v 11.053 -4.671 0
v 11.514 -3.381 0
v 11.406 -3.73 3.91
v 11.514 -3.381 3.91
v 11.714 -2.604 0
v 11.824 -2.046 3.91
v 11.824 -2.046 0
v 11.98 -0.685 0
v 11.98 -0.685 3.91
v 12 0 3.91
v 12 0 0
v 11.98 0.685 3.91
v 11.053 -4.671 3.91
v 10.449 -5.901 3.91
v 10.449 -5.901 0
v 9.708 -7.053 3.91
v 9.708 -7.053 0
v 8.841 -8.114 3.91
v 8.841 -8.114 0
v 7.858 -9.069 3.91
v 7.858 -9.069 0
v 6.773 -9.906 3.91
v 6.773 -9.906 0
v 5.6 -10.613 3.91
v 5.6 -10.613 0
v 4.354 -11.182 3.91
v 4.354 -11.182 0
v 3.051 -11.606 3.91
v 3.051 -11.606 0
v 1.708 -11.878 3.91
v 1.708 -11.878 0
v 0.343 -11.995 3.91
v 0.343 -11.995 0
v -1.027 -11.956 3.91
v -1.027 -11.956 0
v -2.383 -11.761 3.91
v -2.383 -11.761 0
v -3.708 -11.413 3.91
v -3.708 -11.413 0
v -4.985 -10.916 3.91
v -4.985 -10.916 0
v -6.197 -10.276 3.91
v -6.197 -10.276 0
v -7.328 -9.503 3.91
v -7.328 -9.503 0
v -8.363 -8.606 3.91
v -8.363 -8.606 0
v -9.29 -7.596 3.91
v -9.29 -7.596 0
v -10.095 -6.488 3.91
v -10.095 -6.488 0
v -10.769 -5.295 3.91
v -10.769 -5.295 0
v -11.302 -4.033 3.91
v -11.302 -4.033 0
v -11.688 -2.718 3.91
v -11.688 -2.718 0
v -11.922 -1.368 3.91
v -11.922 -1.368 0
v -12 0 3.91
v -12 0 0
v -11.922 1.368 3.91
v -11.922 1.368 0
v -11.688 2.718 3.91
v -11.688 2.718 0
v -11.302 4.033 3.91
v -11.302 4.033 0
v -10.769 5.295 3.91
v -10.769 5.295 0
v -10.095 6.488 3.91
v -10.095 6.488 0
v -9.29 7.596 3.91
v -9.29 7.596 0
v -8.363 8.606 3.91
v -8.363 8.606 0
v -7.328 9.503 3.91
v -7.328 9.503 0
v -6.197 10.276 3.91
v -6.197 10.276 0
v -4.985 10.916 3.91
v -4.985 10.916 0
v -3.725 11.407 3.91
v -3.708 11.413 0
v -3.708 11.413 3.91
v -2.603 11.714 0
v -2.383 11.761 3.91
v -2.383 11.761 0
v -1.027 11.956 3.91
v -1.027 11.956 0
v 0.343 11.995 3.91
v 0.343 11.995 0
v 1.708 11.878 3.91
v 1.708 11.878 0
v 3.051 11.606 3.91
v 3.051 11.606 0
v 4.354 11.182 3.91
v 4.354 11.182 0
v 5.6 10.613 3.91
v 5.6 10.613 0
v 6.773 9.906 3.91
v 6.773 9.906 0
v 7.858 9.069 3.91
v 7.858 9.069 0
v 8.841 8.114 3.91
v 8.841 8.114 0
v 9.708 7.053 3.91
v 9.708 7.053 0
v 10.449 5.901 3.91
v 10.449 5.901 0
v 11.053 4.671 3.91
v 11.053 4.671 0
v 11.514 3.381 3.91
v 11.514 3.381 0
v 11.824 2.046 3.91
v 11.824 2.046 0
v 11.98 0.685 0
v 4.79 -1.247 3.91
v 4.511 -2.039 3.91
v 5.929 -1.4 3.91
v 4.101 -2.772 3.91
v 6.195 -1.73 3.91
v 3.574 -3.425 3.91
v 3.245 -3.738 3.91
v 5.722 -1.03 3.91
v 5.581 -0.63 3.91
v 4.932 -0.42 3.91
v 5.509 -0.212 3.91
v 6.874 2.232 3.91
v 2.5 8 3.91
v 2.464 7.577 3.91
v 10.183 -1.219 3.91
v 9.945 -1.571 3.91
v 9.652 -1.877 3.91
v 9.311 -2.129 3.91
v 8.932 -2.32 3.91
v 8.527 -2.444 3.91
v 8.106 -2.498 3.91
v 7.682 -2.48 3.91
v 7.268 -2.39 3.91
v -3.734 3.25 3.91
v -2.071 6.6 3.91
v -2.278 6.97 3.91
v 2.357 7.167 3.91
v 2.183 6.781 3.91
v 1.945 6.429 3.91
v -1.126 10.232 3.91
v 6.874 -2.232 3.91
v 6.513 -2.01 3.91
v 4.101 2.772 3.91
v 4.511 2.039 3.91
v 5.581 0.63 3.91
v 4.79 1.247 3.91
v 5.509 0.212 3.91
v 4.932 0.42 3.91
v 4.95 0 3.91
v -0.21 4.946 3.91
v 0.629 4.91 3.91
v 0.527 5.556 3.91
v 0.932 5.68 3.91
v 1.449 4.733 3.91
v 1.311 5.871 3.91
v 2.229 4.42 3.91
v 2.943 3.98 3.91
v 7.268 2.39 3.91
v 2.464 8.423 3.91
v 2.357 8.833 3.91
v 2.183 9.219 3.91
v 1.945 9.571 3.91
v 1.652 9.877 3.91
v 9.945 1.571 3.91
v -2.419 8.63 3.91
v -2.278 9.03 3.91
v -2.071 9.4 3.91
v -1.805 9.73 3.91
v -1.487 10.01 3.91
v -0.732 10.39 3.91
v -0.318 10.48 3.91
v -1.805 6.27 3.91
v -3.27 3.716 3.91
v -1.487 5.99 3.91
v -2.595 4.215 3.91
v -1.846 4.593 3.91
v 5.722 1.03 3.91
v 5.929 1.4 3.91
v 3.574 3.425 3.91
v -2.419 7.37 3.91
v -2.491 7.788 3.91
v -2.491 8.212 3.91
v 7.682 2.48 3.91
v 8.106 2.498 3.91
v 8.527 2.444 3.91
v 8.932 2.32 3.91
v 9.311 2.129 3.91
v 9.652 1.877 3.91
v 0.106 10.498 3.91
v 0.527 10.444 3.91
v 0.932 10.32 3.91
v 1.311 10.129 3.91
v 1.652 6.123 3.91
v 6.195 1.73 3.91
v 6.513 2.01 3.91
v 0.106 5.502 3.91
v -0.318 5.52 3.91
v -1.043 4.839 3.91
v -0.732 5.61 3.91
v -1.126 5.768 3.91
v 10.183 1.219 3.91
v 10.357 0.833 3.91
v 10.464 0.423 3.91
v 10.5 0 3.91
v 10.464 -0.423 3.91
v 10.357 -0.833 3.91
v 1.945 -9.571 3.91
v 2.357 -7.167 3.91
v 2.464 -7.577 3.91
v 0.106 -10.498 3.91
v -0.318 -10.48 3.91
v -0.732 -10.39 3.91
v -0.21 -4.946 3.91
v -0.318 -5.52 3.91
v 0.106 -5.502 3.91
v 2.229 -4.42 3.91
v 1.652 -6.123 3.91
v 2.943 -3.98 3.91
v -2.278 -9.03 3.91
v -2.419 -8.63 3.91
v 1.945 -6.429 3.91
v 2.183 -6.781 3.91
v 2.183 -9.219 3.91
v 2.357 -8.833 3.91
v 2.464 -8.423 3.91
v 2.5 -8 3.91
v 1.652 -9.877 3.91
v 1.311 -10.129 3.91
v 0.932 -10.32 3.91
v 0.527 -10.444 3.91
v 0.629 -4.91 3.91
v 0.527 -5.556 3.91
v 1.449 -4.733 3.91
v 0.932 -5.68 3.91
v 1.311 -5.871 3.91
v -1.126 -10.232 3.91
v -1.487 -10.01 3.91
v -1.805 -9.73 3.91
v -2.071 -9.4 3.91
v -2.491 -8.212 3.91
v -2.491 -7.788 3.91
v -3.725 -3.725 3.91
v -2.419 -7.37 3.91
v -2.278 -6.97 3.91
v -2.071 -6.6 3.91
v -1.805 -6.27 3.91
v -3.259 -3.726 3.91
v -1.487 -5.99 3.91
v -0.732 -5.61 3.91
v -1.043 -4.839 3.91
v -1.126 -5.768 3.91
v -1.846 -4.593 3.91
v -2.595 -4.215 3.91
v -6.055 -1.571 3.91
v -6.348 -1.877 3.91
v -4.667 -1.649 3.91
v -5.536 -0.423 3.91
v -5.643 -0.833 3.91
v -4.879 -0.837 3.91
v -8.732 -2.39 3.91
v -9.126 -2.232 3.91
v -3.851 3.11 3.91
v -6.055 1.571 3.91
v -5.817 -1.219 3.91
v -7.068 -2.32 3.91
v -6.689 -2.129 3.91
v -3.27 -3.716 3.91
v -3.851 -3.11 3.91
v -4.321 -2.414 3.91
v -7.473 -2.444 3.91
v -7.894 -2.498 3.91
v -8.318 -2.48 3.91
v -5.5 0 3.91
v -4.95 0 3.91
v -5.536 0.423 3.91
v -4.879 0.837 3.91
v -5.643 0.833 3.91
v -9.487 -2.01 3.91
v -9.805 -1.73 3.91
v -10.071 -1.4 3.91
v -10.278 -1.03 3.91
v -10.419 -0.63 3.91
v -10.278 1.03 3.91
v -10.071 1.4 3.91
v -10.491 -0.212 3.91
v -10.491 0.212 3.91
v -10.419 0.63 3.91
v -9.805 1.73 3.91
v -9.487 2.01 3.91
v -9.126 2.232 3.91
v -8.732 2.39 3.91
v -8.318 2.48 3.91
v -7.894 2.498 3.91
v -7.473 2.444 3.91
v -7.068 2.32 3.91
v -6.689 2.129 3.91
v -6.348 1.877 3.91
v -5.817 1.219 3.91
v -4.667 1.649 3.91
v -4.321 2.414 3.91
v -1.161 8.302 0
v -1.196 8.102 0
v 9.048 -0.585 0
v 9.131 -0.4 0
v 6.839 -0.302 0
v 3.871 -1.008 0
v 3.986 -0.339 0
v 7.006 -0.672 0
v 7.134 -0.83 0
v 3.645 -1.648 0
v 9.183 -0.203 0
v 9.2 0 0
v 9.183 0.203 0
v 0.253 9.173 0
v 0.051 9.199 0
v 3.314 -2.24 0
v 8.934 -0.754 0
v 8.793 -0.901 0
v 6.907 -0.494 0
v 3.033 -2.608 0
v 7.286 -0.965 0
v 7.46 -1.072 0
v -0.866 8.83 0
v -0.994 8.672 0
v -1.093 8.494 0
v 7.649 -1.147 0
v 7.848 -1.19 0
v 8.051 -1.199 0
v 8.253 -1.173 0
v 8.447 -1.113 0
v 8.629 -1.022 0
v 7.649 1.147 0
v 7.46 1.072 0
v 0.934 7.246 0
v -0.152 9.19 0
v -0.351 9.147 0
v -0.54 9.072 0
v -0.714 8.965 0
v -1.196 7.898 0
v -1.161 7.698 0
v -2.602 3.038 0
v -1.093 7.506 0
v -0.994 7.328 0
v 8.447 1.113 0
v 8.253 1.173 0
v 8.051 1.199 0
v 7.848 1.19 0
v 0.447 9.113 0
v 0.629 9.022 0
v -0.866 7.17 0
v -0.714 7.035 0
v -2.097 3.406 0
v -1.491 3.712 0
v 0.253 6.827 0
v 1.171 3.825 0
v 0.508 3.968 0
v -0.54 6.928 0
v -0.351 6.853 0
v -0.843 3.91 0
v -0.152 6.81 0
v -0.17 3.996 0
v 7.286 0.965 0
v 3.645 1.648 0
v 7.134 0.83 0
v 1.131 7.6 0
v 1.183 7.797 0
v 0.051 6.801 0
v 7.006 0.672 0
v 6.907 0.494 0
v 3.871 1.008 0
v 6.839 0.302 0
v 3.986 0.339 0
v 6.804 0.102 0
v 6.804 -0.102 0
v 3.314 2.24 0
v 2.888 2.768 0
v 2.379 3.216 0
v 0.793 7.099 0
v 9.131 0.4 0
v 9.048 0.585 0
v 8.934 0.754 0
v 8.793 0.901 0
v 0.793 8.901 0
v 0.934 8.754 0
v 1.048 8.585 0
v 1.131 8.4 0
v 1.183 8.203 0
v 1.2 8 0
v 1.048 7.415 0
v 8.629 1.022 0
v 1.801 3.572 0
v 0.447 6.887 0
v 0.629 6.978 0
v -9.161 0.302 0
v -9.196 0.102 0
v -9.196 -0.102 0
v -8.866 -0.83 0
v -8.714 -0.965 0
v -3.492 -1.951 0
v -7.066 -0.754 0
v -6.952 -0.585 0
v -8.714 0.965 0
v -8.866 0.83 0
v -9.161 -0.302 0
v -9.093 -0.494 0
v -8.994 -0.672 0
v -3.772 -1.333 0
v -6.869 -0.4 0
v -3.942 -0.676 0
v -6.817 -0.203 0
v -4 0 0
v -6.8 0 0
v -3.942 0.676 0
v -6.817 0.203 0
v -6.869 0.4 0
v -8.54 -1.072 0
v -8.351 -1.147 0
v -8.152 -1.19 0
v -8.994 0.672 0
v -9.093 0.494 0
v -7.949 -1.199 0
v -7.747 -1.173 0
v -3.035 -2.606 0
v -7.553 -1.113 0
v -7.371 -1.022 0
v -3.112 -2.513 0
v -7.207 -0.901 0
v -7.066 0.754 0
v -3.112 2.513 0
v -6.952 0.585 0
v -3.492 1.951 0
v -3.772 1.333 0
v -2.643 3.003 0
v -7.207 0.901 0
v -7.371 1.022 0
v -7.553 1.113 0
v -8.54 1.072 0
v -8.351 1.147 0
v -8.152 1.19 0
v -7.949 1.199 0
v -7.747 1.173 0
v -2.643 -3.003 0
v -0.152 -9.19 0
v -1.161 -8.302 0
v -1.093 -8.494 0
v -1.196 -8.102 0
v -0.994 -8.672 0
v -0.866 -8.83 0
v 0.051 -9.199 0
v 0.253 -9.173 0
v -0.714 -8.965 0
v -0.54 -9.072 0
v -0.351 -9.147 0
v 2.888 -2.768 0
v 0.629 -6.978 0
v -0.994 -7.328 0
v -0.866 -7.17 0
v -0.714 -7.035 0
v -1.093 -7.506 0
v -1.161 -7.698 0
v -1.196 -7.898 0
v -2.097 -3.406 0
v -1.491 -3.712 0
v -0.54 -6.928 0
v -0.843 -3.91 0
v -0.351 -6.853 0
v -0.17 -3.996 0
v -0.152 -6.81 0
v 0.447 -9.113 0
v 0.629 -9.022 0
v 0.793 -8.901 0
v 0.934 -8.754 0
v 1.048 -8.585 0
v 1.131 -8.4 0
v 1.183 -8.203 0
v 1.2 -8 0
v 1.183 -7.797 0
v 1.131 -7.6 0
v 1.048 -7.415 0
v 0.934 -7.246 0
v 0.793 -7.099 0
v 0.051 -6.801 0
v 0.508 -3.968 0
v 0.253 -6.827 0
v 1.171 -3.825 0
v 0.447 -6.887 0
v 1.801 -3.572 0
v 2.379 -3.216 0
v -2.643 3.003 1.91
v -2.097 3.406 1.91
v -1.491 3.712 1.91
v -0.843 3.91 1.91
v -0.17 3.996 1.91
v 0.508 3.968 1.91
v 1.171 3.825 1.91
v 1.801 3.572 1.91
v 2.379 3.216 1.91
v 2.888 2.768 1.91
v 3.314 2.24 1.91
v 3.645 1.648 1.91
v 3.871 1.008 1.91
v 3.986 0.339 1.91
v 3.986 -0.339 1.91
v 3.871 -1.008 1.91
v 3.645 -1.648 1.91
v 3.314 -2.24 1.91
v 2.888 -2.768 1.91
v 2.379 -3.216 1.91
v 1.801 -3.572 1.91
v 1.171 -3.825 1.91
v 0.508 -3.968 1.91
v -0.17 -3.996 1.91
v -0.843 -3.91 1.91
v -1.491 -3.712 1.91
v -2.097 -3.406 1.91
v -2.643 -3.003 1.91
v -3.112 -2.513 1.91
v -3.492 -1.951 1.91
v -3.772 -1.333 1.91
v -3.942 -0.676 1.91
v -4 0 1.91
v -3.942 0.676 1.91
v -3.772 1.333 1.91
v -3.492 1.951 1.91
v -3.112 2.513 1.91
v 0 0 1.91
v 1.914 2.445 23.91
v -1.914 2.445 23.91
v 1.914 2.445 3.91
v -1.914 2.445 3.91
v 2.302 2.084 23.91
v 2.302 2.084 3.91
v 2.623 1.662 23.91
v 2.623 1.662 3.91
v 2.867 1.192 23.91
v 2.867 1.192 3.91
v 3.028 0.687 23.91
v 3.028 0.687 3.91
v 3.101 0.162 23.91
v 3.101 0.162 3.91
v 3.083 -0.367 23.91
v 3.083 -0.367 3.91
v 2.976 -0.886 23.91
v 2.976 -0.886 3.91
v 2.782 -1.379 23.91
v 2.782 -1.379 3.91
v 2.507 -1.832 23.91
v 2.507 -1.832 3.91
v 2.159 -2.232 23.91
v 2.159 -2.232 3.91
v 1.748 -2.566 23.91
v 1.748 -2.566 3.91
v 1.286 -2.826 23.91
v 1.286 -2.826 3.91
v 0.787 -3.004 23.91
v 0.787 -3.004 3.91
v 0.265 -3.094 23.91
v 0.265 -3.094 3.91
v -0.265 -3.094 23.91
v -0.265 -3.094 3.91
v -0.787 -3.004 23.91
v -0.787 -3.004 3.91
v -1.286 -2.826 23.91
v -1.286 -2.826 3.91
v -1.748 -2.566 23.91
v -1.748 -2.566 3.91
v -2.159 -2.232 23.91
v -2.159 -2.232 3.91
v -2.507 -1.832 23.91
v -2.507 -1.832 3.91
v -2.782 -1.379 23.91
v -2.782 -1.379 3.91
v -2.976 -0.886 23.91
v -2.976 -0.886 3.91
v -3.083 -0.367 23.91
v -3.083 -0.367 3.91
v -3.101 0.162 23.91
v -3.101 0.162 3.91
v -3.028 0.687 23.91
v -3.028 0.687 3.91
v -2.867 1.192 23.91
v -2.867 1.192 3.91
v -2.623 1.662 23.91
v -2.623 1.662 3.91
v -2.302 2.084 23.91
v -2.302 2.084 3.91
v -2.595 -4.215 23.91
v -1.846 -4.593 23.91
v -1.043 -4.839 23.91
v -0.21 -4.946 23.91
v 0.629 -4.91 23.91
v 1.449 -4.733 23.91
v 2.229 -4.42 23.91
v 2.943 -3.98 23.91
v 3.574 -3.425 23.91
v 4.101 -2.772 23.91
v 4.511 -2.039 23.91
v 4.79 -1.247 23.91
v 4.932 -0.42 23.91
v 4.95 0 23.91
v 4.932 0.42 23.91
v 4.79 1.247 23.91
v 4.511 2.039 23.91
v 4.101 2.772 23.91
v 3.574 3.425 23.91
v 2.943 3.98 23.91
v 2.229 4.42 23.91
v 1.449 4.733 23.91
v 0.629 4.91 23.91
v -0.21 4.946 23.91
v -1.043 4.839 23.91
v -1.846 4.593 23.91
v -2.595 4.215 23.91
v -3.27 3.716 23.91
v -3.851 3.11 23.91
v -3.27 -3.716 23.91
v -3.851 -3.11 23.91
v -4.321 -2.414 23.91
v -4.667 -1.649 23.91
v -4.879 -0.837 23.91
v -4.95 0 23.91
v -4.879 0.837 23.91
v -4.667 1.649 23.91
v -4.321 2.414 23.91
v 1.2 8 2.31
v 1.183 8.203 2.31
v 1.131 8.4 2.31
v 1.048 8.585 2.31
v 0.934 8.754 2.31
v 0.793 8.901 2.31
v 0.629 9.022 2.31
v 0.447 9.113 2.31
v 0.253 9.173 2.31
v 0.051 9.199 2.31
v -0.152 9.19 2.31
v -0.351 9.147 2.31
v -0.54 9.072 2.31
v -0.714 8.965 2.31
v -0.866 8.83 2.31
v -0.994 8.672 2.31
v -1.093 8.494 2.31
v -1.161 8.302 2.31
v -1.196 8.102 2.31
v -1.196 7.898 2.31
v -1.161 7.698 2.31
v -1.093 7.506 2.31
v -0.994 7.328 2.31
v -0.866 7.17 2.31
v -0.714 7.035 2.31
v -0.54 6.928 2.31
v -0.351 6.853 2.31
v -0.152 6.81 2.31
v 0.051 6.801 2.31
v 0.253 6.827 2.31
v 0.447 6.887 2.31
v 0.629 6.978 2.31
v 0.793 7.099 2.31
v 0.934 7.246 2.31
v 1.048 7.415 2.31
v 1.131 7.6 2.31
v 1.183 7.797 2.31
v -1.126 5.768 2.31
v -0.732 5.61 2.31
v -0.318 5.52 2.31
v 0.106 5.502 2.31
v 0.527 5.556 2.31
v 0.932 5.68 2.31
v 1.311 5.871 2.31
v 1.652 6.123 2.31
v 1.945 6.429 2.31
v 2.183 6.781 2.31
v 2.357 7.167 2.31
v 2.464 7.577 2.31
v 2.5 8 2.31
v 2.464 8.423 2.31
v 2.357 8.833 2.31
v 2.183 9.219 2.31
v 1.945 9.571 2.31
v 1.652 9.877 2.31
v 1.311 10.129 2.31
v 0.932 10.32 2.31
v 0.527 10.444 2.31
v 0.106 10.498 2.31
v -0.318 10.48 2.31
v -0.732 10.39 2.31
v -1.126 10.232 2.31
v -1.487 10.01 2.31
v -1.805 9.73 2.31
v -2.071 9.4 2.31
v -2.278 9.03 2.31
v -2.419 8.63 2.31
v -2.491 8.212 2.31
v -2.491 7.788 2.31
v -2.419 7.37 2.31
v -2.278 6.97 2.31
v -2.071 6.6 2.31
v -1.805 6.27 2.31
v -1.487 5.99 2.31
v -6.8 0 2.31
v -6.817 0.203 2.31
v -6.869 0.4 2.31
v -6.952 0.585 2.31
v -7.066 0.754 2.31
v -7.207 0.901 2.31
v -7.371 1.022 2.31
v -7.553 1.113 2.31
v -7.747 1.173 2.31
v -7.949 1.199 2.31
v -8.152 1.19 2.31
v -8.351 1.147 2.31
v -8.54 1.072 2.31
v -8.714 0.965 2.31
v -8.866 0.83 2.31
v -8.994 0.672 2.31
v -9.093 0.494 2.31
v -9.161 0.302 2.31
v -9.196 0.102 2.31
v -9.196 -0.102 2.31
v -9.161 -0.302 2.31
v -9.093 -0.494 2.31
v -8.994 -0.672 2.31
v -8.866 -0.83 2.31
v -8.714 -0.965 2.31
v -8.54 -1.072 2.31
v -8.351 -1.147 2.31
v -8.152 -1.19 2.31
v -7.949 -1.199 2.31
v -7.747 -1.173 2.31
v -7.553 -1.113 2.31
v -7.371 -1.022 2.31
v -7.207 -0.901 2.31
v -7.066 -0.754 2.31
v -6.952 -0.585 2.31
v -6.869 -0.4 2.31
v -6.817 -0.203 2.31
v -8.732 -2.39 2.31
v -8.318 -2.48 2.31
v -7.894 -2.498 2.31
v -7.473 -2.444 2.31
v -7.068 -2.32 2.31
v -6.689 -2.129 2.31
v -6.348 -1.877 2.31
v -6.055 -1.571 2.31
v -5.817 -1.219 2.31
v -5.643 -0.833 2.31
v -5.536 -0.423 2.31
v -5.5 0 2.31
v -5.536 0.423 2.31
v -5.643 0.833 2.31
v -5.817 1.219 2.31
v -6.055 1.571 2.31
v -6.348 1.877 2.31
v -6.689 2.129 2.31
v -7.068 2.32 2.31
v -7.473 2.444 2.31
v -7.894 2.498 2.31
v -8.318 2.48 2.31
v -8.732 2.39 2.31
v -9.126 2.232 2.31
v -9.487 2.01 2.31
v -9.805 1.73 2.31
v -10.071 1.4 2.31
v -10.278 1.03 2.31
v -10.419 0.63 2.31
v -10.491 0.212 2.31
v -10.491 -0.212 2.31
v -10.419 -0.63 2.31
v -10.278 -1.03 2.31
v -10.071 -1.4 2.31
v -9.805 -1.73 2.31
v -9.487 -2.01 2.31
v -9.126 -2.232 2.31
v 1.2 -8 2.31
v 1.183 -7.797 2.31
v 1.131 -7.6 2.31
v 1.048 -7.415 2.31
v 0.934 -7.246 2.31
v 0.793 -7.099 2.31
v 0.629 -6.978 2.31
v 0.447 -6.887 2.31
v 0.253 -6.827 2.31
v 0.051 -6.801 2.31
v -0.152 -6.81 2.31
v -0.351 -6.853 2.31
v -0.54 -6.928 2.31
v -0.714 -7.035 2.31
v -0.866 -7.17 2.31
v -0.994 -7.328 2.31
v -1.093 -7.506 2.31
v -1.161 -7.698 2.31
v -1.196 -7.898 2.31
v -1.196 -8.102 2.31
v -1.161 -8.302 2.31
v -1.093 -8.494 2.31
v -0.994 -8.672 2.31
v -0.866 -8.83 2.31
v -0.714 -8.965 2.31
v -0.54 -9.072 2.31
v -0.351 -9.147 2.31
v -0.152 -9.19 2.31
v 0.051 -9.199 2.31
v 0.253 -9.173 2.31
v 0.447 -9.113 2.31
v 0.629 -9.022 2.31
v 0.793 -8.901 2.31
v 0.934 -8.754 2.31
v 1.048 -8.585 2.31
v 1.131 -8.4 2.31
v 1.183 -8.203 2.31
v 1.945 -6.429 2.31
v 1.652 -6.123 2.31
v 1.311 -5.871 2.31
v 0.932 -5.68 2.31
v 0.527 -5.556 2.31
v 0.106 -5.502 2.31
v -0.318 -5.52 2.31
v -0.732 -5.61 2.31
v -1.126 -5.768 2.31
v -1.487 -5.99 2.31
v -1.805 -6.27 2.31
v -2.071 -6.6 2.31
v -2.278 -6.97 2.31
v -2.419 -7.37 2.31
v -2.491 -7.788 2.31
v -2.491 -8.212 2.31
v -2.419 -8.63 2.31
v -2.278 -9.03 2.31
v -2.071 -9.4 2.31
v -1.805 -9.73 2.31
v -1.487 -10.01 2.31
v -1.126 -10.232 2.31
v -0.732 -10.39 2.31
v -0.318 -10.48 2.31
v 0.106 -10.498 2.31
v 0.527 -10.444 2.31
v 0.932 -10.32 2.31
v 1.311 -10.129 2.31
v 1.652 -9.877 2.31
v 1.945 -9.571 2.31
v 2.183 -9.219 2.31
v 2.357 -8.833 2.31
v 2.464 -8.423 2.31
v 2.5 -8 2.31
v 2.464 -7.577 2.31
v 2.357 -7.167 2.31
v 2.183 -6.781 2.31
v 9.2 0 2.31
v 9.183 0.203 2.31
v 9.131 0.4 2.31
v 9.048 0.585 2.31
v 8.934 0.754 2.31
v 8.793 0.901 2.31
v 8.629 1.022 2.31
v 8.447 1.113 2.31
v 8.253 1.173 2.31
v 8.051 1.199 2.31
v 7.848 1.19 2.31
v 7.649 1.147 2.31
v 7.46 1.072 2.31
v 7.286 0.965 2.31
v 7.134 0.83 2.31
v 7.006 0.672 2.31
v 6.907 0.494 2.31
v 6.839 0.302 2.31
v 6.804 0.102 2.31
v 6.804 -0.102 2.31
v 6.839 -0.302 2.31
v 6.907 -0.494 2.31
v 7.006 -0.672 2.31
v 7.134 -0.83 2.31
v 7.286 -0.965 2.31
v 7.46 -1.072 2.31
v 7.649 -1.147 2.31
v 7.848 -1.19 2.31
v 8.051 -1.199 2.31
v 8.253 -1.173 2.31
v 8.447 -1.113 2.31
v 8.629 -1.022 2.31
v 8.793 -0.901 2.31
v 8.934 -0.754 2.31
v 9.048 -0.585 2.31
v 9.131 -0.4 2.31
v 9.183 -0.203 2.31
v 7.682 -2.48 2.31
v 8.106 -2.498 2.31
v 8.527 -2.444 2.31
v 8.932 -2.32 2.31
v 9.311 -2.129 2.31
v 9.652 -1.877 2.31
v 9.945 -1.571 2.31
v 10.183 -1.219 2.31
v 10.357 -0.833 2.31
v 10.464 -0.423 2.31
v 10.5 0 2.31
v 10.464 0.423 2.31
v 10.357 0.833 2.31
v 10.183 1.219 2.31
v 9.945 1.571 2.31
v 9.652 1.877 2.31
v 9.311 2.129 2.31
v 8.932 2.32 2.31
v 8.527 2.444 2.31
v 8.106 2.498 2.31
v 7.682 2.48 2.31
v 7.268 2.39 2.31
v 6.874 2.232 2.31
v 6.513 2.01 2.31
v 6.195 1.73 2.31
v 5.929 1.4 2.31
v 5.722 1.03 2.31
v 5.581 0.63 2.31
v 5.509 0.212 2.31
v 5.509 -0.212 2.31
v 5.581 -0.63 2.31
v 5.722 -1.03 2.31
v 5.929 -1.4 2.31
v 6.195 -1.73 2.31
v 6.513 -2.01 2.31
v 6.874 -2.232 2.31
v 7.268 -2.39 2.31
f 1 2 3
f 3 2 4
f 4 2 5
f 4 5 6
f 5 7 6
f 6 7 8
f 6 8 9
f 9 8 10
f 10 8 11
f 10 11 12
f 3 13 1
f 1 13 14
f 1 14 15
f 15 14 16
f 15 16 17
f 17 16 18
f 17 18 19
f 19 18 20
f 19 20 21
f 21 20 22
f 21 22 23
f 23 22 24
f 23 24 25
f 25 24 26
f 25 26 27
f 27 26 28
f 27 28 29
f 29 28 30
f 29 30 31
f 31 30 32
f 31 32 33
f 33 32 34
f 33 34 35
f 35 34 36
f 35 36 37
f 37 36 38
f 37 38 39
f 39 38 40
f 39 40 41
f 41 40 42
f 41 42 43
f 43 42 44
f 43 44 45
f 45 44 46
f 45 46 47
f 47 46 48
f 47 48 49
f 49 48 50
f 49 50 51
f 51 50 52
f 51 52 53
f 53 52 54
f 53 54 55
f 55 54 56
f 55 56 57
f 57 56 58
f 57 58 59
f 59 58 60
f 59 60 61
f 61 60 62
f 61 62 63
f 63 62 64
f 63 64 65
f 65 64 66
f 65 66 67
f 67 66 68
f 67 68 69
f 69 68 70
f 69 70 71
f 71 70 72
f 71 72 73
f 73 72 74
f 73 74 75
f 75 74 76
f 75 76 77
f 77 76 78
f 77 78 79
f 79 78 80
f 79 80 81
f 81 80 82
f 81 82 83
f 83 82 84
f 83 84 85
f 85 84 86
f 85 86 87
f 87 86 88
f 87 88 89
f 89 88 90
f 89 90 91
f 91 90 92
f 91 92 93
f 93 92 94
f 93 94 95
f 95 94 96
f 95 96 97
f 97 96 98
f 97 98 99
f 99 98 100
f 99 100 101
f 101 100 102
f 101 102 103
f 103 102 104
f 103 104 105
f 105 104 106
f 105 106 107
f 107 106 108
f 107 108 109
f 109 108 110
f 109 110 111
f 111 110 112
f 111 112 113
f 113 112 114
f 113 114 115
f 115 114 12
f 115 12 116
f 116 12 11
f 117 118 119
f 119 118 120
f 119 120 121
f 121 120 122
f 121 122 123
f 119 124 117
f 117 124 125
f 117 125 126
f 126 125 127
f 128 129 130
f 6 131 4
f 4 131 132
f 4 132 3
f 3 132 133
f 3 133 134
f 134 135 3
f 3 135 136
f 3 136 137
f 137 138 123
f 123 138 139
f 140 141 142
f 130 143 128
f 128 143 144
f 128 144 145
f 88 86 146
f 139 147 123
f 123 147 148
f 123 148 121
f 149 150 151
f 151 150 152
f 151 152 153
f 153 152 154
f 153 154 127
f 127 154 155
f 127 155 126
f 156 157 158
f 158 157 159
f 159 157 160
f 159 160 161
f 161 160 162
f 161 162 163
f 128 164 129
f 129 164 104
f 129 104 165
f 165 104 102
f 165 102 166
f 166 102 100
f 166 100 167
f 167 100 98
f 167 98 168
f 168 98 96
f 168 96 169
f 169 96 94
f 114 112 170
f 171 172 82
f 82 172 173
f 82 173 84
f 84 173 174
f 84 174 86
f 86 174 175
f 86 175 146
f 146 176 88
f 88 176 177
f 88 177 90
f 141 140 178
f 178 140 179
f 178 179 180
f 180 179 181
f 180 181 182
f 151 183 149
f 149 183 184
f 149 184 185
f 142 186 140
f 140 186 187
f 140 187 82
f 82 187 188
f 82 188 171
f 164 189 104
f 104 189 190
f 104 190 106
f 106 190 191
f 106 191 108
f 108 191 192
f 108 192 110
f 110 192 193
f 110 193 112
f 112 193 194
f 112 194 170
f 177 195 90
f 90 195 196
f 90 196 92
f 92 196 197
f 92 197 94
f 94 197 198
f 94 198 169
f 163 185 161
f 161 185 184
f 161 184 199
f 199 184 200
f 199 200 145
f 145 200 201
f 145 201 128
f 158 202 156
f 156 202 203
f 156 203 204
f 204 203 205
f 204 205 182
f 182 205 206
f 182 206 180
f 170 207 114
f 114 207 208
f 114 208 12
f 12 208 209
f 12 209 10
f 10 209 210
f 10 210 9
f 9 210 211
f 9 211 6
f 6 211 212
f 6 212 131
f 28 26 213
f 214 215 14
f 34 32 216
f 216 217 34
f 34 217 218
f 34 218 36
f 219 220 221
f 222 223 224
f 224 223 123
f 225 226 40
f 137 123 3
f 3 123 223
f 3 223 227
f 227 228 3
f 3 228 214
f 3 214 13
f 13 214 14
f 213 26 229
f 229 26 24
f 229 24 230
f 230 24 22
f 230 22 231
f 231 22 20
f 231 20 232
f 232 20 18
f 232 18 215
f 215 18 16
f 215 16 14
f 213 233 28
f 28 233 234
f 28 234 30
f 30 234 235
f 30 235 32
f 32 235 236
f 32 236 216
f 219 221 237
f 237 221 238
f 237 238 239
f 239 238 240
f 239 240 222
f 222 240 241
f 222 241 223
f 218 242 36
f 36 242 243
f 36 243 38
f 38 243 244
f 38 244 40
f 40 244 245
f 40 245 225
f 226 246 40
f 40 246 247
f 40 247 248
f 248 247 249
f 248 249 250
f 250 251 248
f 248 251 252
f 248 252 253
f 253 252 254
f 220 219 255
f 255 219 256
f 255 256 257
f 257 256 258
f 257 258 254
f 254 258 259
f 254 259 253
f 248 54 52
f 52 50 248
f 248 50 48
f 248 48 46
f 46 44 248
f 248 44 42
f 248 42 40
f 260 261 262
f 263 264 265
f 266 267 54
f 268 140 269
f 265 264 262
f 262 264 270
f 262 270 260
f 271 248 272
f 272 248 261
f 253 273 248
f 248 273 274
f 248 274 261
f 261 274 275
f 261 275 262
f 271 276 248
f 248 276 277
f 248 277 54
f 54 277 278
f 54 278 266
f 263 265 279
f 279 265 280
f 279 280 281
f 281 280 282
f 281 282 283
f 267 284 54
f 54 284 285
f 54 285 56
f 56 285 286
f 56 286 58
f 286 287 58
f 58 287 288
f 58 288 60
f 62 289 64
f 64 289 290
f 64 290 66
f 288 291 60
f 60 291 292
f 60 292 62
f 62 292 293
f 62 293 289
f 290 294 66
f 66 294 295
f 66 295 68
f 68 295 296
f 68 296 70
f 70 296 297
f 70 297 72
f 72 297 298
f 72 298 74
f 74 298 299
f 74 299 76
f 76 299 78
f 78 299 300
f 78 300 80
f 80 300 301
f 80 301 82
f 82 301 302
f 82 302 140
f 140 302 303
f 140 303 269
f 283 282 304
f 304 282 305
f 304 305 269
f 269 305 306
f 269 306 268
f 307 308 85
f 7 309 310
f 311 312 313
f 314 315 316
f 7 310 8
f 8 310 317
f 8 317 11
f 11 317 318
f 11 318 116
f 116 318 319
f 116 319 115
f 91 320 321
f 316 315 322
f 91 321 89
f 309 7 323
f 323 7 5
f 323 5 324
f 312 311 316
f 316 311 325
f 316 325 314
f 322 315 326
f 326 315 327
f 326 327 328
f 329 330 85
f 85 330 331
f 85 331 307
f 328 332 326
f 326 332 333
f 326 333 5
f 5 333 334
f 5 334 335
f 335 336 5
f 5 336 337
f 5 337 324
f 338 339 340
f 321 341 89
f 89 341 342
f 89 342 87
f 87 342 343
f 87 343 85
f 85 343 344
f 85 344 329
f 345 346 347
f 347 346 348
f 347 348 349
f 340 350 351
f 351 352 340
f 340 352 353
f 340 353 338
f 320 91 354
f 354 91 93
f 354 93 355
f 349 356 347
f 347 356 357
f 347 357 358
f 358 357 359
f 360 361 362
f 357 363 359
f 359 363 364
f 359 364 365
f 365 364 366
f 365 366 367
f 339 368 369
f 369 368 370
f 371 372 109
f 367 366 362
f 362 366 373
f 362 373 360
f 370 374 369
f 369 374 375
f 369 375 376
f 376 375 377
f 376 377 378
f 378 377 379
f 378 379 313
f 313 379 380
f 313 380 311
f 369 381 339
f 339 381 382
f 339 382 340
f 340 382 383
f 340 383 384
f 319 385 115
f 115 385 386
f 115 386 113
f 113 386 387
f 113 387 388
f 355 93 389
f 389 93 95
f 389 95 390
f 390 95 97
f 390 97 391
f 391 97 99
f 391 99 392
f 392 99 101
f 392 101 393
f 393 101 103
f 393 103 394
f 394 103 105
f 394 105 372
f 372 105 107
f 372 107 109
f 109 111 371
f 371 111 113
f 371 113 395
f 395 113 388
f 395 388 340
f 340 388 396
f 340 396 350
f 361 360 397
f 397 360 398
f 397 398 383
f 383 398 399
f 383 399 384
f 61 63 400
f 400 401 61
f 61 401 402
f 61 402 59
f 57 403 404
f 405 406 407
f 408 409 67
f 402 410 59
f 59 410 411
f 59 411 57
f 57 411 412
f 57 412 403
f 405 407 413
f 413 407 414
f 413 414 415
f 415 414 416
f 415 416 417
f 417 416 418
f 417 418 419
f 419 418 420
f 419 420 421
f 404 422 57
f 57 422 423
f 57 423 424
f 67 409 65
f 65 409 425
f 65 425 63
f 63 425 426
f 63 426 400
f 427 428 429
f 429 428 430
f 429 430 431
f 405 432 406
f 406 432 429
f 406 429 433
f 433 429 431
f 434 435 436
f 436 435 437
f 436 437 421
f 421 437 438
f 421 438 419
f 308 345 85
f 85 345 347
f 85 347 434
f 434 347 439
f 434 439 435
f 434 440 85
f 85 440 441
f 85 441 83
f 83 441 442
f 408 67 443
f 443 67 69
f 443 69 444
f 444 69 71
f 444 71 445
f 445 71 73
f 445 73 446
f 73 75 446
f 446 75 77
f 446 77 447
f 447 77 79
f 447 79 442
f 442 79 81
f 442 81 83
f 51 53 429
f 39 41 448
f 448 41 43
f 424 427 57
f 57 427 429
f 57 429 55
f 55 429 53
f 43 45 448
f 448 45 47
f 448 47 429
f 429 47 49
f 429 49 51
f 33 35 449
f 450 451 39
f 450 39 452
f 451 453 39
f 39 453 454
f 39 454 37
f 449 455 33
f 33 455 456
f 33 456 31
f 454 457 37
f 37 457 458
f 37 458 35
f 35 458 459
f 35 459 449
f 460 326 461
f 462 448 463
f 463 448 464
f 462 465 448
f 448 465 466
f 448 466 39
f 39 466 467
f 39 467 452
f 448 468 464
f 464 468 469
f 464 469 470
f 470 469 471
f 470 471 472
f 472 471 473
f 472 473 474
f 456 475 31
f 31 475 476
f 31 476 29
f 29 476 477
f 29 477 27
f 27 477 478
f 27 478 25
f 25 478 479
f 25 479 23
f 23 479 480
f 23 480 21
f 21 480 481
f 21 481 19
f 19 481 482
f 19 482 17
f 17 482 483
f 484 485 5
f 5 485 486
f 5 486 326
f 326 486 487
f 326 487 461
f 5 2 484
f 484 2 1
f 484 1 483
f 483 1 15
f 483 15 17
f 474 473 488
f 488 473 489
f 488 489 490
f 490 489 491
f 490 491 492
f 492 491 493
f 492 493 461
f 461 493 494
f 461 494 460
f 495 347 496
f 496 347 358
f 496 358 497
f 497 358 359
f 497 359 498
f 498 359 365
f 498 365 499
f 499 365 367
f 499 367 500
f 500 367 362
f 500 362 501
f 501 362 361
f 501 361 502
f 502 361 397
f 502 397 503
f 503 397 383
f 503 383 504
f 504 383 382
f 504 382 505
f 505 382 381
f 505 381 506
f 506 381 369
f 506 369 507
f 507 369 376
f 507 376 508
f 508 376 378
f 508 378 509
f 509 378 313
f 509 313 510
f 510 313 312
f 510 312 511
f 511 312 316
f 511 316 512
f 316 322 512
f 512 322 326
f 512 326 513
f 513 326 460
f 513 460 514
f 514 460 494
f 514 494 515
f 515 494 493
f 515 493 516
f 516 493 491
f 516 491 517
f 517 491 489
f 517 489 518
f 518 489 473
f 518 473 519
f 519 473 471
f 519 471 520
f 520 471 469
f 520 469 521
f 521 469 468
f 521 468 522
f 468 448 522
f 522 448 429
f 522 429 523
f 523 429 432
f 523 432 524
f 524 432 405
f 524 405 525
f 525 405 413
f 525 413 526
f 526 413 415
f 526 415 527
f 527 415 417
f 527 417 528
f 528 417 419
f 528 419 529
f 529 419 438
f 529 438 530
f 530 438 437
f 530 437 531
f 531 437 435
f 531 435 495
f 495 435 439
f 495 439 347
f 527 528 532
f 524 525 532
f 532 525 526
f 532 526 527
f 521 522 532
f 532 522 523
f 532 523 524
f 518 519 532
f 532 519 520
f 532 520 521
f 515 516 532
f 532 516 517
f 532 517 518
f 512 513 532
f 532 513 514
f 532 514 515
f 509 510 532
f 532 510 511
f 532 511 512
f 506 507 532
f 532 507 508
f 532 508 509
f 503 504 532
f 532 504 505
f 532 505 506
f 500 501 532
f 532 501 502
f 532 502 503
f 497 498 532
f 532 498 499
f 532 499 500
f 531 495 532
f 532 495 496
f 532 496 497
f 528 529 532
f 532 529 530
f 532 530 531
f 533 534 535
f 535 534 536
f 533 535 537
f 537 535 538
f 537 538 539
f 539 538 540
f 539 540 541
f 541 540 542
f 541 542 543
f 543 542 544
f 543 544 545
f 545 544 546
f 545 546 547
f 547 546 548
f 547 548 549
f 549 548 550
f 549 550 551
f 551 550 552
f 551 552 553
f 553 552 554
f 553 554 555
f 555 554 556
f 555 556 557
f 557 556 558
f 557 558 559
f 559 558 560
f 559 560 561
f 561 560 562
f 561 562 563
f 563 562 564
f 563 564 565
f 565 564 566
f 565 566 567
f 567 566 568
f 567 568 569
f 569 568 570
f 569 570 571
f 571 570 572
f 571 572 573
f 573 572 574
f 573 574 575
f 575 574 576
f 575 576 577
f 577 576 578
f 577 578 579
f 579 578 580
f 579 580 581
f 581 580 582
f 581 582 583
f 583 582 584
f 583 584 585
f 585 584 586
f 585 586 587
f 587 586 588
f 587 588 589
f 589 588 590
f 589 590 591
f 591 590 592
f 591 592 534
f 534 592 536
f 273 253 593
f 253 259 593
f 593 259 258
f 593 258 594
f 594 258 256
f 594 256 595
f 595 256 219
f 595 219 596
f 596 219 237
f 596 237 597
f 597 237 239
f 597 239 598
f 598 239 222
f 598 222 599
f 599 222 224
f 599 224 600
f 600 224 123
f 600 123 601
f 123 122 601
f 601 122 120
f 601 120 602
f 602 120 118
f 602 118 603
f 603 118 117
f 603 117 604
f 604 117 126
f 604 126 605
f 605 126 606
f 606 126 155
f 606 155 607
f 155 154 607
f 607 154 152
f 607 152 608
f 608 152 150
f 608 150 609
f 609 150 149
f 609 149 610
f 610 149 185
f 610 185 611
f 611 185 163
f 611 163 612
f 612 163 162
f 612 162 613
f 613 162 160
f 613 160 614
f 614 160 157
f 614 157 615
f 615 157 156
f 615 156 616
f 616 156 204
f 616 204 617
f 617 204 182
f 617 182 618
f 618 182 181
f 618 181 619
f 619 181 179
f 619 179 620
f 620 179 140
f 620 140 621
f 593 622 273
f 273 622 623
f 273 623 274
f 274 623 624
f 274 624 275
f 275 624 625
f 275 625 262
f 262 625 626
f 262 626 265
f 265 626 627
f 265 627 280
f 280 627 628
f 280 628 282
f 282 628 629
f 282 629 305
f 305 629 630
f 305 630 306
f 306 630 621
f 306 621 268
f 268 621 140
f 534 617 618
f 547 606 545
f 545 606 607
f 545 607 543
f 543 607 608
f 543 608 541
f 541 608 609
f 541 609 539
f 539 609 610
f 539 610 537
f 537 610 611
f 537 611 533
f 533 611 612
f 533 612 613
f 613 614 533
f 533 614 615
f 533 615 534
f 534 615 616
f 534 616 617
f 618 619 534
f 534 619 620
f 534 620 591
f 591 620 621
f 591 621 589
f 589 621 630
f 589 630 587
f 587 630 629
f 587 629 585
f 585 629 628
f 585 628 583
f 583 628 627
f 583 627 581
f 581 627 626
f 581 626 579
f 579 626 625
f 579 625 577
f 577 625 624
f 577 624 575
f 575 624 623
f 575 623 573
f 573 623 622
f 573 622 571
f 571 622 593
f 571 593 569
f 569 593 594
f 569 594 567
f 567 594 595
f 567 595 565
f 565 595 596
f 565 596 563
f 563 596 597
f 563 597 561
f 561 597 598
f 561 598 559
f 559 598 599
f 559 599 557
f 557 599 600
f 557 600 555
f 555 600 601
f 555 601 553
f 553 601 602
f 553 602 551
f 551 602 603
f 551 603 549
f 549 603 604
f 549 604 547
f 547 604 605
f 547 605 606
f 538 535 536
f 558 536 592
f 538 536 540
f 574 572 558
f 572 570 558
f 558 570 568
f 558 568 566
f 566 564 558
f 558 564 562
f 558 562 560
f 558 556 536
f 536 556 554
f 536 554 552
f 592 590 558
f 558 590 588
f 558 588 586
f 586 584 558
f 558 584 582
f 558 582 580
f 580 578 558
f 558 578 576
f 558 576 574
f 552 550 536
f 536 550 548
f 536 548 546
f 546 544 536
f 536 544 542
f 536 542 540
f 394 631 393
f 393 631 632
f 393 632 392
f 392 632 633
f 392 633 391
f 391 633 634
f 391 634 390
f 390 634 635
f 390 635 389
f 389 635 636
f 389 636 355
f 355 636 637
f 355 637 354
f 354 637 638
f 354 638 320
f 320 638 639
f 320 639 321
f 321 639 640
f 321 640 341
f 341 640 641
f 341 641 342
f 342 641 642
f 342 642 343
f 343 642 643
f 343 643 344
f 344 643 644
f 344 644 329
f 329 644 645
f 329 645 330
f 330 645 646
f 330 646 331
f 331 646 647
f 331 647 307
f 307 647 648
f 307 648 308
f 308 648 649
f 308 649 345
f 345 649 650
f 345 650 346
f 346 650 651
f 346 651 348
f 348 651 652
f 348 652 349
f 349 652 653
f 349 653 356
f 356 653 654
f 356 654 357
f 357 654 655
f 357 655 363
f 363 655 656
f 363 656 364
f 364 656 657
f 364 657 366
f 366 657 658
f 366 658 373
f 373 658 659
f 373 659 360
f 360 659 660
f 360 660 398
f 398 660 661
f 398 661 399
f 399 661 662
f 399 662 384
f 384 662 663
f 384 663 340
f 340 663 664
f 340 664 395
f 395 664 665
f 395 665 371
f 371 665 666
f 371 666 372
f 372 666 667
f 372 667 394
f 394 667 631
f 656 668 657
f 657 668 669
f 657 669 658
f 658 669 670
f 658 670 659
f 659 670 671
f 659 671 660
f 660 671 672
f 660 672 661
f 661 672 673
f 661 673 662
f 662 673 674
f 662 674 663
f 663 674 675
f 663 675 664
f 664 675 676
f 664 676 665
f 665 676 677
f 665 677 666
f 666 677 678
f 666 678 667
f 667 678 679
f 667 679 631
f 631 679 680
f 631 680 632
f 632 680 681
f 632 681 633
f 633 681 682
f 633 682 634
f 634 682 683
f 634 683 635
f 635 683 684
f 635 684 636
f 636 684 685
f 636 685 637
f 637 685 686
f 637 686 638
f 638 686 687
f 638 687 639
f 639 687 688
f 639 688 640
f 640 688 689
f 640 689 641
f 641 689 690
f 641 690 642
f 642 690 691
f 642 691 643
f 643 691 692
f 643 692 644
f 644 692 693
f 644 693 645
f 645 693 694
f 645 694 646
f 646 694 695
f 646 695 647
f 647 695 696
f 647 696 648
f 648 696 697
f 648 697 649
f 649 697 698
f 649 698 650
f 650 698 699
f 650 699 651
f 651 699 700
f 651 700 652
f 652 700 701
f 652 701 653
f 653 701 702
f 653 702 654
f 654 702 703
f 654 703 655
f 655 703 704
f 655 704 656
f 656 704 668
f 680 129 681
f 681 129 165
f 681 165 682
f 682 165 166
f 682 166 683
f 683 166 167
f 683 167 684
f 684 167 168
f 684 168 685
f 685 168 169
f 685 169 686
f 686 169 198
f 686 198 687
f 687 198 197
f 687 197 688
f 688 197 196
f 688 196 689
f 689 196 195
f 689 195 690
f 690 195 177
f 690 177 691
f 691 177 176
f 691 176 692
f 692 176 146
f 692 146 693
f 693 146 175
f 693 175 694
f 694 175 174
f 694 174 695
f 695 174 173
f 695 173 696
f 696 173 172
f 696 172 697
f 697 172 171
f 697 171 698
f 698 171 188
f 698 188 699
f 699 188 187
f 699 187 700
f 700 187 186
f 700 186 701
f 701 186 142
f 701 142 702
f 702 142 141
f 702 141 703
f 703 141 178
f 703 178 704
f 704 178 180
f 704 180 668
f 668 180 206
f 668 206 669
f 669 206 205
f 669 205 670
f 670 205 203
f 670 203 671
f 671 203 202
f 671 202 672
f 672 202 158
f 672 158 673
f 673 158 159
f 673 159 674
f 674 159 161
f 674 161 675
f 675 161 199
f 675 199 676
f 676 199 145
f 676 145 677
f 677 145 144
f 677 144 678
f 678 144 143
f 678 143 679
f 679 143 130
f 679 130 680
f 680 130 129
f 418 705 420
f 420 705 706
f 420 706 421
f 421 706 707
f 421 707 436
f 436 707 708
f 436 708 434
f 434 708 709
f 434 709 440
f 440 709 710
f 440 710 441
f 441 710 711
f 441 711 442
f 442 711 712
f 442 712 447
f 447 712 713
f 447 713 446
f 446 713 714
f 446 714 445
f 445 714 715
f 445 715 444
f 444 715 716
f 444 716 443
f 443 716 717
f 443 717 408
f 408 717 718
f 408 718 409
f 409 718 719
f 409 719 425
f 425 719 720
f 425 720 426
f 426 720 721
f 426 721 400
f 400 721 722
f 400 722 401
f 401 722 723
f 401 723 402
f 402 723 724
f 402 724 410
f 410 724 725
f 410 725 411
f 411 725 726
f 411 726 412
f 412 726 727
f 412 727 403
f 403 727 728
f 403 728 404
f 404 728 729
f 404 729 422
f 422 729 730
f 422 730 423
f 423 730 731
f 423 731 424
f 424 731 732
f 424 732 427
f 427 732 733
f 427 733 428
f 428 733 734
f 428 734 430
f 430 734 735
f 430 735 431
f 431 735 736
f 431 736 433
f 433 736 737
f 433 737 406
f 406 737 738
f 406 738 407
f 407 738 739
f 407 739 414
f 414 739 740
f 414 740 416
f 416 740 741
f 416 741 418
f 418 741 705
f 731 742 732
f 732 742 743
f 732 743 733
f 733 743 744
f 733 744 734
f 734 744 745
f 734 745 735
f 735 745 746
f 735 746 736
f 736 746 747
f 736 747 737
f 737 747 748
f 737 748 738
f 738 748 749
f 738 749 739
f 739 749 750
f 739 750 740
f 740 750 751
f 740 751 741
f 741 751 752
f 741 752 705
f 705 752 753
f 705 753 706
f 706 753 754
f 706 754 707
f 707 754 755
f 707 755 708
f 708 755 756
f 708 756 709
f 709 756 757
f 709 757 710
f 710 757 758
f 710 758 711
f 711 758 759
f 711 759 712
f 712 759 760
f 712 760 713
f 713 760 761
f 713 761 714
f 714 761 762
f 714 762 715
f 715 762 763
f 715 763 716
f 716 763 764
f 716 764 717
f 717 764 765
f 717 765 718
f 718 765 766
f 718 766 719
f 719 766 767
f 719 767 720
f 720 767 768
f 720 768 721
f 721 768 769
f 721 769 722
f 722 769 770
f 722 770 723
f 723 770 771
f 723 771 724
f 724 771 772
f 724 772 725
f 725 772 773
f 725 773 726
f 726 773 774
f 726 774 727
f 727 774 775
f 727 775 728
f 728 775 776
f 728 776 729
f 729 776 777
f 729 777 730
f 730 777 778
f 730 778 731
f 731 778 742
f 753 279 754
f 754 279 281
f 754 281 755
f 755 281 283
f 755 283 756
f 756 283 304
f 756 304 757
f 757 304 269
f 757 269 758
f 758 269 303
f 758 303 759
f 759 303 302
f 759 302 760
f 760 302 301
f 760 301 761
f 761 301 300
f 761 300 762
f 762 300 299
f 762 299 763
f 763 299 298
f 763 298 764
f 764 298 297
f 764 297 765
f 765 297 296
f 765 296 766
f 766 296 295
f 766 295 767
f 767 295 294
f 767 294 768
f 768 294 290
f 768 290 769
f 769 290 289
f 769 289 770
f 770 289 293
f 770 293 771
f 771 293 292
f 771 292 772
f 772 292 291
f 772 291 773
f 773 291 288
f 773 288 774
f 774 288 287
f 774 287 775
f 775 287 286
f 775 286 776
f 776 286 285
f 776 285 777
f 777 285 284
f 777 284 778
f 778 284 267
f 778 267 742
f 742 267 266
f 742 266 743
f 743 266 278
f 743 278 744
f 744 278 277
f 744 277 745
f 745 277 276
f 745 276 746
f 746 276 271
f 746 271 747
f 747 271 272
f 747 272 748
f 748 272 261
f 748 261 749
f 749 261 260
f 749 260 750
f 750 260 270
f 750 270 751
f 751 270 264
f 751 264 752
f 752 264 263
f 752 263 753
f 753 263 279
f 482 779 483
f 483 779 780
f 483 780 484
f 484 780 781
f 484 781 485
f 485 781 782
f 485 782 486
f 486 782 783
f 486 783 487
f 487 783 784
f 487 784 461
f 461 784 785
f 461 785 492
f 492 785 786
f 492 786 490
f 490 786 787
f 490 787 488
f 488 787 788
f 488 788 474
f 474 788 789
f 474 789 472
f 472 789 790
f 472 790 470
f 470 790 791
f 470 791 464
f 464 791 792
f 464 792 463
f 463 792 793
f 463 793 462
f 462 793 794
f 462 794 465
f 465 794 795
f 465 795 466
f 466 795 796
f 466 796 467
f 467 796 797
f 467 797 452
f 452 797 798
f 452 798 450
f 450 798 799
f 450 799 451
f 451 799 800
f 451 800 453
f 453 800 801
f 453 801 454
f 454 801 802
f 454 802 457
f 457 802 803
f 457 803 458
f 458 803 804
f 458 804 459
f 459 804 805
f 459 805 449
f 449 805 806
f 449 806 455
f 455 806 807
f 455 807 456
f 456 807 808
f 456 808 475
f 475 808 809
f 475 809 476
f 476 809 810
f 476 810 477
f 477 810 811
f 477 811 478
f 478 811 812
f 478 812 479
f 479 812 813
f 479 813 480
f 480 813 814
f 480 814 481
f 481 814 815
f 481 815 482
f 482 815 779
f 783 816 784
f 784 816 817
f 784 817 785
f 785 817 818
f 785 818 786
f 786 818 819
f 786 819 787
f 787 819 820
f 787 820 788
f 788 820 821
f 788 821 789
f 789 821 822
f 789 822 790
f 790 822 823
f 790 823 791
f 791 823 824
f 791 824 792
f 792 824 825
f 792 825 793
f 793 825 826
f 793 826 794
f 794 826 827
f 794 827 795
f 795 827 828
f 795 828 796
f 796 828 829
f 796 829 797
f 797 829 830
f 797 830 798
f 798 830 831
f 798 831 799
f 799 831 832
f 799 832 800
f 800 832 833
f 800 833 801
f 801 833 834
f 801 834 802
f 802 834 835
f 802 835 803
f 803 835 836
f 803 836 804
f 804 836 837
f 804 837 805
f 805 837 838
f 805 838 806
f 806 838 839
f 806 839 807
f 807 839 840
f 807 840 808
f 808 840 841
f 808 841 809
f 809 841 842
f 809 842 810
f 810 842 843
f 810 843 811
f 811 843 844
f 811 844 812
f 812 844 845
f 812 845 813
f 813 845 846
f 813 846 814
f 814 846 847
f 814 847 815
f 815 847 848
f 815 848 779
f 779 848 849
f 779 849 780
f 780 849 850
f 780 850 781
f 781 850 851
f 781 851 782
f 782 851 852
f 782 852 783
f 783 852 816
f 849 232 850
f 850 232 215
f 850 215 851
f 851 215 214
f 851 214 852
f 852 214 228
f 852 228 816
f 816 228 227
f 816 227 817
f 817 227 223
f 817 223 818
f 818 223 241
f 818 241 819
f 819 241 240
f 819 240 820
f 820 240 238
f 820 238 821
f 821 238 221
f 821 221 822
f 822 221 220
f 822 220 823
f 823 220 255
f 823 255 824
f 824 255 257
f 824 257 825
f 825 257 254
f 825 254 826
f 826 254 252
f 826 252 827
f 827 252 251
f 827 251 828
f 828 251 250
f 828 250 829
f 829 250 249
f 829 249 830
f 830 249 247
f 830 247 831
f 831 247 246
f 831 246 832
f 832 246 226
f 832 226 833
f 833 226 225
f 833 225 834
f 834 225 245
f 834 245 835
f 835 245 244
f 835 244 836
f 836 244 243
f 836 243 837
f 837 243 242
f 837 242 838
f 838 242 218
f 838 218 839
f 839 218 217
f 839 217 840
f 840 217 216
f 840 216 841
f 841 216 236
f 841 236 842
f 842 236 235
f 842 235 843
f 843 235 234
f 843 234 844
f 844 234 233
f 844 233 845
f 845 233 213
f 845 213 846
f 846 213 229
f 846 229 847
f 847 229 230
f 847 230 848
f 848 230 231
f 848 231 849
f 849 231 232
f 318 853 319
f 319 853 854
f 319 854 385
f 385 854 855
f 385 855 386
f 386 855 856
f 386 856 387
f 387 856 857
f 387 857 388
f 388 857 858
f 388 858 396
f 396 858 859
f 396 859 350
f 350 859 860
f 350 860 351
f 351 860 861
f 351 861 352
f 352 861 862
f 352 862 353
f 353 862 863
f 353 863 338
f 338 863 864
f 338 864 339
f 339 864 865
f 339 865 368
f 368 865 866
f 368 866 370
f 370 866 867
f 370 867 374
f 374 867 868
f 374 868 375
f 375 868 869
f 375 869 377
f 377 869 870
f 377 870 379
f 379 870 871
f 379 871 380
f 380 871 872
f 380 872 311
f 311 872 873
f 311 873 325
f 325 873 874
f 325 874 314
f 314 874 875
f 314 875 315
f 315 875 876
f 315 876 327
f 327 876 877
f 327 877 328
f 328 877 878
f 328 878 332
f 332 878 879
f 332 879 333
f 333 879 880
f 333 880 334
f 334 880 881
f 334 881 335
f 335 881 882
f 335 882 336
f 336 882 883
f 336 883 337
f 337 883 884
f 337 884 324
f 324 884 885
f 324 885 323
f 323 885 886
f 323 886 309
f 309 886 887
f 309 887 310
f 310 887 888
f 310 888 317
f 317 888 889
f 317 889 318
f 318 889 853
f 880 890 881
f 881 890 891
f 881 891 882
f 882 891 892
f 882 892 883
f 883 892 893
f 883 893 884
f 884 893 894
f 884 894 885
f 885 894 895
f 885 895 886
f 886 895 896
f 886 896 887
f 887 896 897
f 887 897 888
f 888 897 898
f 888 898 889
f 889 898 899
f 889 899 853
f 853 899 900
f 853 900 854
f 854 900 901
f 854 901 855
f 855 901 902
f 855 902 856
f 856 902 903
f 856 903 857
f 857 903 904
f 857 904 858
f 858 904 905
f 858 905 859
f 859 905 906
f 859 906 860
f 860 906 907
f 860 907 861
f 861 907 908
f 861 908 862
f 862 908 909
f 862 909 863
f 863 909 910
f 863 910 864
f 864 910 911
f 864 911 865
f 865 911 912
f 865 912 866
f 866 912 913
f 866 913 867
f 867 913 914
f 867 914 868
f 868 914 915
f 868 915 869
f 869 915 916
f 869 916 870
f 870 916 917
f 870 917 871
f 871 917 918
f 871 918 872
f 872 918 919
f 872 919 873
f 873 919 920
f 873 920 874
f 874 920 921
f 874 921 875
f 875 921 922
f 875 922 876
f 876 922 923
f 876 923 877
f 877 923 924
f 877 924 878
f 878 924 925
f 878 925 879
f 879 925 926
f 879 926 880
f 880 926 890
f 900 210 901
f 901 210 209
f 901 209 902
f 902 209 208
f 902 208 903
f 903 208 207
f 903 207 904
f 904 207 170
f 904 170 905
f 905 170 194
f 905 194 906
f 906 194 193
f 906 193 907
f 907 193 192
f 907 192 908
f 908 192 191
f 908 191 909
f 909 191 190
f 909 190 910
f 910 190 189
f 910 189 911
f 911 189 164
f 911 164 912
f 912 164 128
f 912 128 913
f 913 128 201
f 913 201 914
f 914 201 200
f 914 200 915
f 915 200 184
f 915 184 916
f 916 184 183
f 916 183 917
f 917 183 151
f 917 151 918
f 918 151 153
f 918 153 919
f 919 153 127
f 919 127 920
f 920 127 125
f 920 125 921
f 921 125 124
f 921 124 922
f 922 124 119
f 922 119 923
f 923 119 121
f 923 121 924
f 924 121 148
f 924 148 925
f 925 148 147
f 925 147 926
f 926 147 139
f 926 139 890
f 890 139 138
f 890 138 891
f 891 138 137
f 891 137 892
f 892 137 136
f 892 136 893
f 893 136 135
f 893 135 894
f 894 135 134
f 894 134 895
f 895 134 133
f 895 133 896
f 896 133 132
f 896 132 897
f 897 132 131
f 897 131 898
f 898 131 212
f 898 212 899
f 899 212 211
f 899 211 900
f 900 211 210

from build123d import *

# Parameters (mm, degrees)
ESQUISSE1_R                                        = 12
BOSS_EXTRU_1_DEPTH                                 = 3.91
ESQUISSE6_R                                        = 4
ENL_V_MAT_EXTRU_2_DEPTH                            = 1.91
ESQUISSE7_R                                        = 4.95
BOSS_EXTRU_2_DEPTH                                 = 20
CHAMBRAGE_POUR_VIS_T_TE_RONDE_BOMB_E_M_D           = 2.4
CHAMBRAGE_POUR_VIS_T_TE_RONDE_BOMB_E_M_CBORE_D     = 5
CHAMBRAGE_POUR_VIS_T_TE_RONDE_BOMB_E_M_CBORE_DEPTH = 1.6
R_P_TITION_CIRCULAIRE2_COUNT                       = 4


with BuildPart() as part:
    # Esquisse1 → Boss.-Extru.1 (new body)
    with BuildSketch(Plane.XY):
        Circle(ESQUISSE1_R)
    extrude(amount=BOSS_EXTRU_1_DEPTH)

    # Esquisse6 → Enlèv. mat.-Extru.2 (cut)
    with BuildSketch(Plane(origin=(0, 0, 0), x_dir=(-1, 0, 0), z_dir=(0, 0, -1))):
        Circle(ESQUISSE6_R)
    extrude(amount=-ENL_V_MAT_EXTRU_2_DEPTH, mode=Mode.SUBTRACT)

    # Esquisse7 → Boss.-Extru.2 (add)
    with BuildSketch(Plane.XY.offset(3.91)):
        Circle(ESQUISSE7_R)
        with BuildLine():
            Line((1.913896549, 2.445), (-1.913896549, 2.445))
            ThreePointArc((-1.913896549, 2.445), (0, -3.105), (1.913896549, 2.445))
        make_face(mode=Mode.SUBTRACT)
    extrude(amount=BOSS_EXTRU_2_DEPTH)

    # Chambrage pour vis à tête ronde bombée M21 (through all)
    with Locations(Plane.XY.offset(3.91)):
        with Locations((0, 8)):
            chambrage_pour_vis_t_te_ronde_bomb_e_m = CounterBoreHole(CHAMBRAGE_POUR_VIS_T_TE_RONDE_BOMB_E_M_D / 2, CHAMBRAGE_POUR_VIS_T_TE_RONDE_BOMB_E_M_CBORE_D / 2, CHAMBRAGE_POUR_VIS_T_TE_RONDE_BOMB_E_M_CBORE_DEPTH)

    # Répétition circulaire2: Chambrage pour vis à tête ronde bombée M21 ×4 about axis
    r_p_tition_circulaire2_axis = Axis((0, 0, 0), (0, 0, 1))
    for i in range(1, R_P_TITION_CIRCULAIRE2_COUNT):
        add(chambrage_pour_vis_t_te_ronde_bomb_e_m.rotate(r_p_tition_circulaire2_axis, i * 360 / R_P_TITION_CIRCULAIRE2_COUNT), mode=Mode.SUBTRACT)


solid = part.part
